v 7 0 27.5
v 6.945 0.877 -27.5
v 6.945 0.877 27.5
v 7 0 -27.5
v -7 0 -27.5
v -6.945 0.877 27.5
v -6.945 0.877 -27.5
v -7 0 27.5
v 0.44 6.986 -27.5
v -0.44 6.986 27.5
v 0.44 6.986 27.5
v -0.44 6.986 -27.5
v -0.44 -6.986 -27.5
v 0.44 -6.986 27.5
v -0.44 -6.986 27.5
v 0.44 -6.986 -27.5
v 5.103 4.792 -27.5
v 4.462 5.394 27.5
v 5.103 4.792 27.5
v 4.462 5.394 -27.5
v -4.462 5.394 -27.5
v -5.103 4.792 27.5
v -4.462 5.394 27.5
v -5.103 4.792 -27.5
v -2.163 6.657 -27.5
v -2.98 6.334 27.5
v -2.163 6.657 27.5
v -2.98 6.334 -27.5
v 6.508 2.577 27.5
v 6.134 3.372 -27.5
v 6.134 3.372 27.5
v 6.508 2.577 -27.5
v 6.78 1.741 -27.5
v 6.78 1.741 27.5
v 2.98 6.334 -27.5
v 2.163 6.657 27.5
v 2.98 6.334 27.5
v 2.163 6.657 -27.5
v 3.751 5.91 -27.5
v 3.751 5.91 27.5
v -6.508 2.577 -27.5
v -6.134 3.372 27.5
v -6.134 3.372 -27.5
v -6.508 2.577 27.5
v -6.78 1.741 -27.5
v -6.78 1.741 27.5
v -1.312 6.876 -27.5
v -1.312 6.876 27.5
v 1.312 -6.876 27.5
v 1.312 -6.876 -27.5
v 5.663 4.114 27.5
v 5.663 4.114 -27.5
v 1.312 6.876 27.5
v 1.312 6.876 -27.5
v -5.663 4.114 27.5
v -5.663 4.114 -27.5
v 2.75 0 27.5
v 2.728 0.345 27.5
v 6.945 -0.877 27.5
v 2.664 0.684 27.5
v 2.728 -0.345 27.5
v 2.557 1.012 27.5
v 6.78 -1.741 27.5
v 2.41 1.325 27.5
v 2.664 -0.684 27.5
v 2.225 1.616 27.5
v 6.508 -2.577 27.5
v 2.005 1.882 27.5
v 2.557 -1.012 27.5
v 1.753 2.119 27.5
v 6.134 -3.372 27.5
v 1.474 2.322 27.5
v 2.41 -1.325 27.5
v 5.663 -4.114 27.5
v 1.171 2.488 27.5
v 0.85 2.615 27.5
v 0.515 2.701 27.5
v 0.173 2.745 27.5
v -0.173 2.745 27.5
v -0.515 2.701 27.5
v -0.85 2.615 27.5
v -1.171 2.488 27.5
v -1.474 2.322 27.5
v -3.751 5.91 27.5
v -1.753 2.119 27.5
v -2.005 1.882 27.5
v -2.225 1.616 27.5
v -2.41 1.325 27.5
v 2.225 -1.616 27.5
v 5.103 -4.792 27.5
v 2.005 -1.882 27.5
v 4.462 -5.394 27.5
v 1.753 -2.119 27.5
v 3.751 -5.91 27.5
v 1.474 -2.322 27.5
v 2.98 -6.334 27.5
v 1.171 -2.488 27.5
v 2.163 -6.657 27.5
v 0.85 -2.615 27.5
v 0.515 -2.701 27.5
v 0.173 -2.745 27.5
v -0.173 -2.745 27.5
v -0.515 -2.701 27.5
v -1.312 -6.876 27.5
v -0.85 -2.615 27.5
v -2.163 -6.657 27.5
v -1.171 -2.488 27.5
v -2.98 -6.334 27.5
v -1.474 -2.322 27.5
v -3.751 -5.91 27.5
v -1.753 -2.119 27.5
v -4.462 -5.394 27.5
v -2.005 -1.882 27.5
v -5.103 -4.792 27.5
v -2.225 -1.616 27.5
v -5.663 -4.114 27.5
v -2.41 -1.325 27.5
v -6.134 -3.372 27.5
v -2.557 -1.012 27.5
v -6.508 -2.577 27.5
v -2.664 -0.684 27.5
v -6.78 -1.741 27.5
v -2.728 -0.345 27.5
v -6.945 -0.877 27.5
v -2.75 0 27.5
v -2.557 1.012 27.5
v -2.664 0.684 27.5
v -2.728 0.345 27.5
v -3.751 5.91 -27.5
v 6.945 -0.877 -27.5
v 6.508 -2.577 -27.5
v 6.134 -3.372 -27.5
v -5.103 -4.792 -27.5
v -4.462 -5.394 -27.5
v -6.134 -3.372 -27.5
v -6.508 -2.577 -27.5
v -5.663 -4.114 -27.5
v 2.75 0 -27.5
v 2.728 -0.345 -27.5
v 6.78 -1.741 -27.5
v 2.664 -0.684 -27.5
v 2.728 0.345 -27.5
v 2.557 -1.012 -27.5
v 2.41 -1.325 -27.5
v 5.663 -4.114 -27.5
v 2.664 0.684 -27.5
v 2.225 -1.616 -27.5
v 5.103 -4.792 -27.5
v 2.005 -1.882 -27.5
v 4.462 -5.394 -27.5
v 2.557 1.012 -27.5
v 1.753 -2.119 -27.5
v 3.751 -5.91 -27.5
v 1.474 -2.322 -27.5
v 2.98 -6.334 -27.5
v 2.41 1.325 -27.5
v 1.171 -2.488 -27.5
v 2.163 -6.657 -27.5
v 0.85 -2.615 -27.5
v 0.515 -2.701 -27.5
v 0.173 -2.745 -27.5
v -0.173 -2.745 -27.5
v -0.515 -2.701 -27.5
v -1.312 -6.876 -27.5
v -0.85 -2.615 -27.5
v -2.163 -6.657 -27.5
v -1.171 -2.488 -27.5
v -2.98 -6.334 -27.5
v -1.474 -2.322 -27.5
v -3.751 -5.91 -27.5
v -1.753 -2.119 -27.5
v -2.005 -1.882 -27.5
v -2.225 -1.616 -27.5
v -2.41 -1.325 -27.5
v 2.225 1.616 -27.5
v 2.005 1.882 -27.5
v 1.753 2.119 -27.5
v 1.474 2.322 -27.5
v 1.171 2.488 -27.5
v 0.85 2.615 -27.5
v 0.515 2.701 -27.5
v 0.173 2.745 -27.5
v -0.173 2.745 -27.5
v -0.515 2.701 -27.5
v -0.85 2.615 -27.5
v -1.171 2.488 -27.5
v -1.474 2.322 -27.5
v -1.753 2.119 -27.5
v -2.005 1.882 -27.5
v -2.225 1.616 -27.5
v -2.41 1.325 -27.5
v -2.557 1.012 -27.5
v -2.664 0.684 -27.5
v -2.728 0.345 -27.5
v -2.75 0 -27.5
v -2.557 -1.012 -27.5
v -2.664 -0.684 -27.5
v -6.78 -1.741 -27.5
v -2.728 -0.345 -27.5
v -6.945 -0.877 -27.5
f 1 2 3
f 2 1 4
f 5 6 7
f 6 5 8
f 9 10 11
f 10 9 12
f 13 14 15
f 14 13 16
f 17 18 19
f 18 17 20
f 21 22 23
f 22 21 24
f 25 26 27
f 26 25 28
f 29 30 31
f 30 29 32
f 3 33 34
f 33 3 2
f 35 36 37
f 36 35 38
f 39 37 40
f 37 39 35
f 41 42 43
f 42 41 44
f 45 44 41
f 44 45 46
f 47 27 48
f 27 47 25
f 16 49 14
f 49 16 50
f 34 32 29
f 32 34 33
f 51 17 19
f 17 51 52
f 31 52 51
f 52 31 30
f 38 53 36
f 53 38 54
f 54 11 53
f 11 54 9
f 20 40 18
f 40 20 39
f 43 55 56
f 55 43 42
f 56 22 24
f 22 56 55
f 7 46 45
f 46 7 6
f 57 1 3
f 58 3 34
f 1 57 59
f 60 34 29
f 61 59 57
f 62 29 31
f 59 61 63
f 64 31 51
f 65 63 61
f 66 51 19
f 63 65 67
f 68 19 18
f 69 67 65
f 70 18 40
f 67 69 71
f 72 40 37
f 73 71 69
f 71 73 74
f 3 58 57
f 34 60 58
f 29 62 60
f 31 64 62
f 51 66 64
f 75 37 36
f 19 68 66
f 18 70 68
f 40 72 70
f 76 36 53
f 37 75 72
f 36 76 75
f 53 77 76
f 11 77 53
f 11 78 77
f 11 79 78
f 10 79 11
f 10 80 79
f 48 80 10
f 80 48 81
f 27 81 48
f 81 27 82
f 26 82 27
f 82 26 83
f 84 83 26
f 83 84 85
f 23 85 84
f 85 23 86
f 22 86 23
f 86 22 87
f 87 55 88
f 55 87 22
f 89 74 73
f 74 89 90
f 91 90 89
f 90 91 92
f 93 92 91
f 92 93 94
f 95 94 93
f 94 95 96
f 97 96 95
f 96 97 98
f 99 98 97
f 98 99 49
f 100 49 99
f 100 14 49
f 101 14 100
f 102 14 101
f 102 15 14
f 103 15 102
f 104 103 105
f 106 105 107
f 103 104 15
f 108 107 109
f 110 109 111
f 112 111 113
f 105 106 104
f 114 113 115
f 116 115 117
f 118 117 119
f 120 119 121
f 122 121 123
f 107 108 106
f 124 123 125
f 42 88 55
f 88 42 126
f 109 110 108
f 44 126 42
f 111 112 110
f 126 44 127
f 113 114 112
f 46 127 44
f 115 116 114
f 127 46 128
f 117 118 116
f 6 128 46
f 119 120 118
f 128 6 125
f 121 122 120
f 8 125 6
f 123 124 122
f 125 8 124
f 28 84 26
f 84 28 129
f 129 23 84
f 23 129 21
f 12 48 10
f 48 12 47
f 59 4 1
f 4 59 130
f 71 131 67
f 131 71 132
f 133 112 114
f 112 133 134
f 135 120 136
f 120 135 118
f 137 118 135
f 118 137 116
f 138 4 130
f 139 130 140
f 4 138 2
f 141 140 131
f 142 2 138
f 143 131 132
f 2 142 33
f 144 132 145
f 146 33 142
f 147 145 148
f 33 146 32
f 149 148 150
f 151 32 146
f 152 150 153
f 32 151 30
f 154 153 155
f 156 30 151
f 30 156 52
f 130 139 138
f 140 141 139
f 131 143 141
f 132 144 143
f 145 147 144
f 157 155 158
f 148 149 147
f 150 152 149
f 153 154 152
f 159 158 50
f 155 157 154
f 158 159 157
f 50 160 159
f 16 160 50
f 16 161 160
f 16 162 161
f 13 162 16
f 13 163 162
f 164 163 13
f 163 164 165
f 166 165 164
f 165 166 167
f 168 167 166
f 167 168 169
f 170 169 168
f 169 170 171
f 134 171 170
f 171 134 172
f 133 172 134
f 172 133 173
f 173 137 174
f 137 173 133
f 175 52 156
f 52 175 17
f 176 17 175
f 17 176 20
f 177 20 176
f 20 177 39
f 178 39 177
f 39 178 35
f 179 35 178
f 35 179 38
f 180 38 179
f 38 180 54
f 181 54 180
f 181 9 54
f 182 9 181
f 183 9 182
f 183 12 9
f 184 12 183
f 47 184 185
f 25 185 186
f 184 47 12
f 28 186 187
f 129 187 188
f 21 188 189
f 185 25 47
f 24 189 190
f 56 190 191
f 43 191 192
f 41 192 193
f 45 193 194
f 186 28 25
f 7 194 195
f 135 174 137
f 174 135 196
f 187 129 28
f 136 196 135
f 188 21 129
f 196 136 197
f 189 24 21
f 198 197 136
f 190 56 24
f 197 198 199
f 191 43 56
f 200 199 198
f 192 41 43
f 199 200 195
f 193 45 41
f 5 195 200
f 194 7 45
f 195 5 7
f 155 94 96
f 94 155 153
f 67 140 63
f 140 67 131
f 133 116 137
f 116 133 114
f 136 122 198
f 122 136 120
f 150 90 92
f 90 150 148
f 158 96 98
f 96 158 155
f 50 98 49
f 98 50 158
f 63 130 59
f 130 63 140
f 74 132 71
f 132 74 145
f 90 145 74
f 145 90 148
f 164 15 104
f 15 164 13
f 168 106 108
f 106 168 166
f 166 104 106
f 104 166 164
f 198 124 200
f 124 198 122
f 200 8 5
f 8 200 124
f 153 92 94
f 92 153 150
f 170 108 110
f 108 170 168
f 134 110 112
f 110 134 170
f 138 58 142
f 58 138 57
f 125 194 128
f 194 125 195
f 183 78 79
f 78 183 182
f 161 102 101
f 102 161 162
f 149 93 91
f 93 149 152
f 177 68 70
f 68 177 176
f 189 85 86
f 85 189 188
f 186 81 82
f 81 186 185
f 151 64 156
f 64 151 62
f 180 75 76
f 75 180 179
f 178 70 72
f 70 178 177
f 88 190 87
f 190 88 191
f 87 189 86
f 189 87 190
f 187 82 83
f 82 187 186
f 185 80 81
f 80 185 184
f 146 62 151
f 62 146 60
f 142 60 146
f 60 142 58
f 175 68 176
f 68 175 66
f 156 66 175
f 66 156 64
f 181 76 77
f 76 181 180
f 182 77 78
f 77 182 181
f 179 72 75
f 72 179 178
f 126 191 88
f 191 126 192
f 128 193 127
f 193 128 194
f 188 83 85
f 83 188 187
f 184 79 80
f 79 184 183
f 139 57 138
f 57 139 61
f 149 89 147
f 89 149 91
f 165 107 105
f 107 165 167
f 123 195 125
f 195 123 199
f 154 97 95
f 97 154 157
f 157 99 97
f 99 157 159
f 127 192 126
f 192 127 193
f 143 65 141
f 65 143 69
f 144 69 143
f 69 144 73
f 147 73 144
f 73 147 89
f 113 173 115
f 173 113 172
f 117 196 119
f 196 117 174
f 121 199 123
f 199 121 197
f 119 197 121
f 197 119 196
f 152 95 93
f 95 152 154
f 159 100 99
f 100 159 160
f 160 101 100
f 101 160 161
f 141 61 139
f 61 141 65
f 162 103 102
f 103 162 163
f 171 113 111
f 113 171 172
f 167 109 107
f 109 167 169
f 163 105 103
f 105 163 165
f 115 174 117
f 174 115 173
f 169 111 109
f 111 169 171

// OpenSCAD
$fn = 50;


difference() {
	union() {
		translate(v = [0, 0, -27.5000000000]) {
			cylinder(h = 55, r = 7.0000000000);
		}
	}
	union() {
		translate(v = [0, 0, -100.0000000000]) {
			cylinder(h = 200, r = 2.7500000000);
		}
	}
}
